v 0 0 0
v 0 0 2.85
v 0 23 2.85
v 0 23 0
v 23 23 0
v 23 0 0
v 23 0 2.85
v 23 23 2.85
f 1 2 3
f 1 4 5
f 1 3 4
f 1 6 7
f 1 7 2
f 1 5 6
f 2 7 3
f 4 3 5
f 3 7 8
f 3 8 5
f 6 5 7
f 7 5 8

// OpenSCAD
/* Warning, this is a very basic generator with a lot of approximation 
input data : [FBGA, AQC, 23x23x2.85mm, 707, , A, C04-25168A]
generated by com.zoubworld.electronics.cad.model3d.Basic
Date : Sun Feb 15 10:50:49 CET 2026
*/

//body
color("black")
translate([0,0,0])
cube([23.0,23.0,2.85], center=false);
